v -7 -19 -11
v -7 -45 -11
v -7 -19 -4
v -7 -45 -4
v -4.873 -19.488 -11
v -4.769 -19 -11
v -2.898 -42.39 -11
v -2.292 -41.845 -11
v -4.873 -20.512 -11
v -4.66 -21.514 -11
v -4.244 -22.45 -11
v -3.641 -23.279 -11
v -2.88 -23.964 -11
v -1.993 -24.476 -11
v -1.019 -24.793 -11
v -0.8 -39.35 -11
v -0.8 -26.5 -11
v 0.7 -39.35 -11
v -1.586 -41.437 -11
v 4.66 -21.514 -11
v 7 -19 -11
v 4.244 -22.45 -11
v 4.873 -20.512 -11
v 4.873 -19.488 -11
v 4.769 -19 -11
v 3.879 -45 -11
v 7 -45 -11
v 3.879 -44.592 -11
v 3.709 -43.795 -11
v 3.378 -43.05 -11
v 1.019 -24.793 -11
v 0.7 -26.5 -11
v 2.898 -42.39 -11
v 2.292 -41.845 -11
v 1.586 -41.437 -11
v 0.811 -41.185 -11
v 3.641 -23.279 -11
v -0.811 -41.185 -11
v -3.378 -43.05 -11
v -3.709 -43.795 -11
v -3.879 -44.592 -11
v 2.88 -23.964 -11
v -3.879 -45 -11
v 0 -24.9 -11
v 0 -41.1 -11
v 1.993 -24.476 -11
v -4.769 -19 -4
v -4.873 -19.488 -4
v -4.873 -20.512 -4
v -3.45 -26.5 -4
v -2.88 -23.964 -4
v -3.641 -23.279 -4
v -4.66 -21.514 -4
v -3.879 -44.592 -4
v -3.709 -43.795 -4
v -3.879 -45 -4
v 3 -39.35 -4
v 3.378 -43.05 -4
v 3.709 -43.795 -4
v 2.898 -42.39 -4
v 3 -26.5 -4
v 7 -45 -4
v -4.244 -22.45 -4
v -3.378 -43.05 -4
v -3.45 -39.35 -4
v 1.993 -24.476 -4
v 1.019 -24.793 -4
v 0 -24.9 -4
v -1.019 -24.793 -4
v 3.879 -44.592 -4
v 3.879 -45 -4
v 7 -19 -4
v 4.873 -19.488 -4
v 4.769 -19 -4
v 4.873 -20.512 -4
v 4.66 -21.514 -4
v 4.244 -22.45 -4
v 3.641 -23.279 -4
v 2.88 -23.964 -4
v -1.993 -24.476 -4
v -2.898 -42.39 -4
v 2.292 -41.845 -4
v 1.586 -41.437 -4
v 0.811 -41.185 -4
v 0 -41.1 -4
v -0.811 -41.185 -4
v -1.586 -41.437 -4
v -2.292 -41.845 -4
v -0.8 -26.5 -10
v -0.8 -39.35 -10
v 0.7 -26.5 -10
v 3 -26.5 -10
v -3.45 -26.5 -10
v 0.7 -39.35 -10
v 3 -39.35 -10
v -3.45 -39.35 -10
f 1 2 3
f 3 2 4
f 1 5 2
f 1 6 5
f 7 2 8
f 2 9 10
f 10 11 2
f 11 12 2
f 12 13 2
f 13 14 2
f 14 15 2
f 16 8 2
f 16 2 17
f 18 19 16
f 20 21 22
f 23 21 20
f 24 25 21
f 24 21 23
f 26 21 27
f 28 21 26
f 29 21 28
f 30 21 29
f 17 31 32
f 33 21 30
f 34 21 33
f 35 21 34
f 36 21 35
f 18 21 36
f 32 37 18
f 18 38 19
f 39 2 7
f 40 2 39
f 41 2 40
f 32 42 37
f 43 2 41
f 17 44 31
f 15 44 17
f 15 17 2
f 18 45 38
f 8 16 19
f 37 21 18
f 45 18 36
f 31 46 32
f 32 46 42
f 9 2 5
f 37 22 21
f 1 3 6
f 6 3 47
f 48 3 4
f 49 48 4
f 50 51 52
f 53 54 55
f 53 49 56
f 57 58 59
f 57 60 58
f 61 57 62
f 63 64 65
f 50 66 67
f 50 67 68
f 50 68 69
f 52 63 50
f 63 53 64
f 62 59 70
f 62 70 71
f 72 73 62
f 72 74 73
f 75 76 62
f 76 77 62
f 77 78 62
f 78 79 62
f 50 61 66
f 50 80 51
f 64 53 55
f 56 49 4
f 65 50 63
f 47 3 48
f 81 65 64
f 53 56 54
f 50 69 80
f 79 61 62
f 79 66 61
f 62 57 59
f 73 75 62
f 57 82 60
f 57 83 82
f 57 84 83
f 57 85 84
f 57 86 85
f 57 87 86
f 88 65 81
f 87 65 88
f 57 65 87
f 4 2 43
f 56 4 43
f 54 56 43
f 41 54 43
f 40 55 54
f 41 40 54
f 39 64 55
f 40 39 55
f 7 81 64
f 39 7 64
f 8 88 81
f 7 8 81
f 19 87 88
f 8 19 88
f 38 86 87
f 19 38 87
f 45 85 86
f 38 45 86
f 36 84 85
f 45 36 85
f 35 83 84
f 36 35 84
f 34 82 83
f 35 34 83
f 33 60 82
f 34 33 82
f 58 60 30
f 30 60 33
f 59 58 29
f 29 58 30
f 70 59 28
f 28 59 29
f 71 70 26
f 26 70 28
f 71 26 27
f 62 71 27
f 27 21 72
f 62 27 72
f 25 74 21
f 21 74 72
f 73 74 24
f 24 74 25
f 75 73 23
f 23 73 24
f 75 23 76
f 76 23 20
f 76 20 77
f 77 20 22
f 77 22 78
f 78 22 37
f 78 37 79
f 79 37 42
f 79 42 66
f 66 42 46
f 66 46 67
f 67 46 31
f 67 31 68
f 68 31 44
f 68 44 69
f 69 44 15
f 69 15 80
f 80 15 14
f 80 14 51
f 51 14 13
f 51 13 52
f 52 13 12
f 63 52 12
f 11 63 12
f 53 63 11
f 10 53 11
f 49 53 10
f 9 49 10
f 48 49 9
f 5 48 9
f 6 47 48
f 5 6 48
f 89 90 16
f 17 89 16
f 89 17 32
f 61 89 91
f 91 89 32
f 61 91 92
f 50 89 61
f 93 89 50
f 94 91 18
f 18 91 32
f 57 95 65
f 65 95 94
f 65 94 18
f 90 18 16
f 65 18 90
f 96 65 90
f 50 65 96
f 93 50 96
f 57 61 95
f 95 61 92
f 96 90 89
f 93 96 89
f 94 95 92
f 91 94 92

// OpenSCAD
// Y axis endstop holder
// By Julio Galaron (@jgalaron)
// cc by-sa 4.0 International

module base(){ translate([-7,-11,19]) cube([14,7,26]); }

module rods(){	
	translate([-11,-11,0]){
		translate([11,0,20])  rotate([0,0,90])  rotate([0,90,0]) translate([0,0,-5]) cylinder(h = 20, r=4.9, $fn=30);
		translate([11,-4,45]) rotate([0,90,90]) cylinder(h = 20, r=3.9, $fn=30); 
	}
}

module endStop(){
	translate([-.8,-12,26.5])  cube([1.5,6.55,12.85]);
	translate([-3.45,-10,26.5])cube([6.45,6.55,12.85]);
}

//final part
rotate([90,0,0]) difference(){
	base();
	rods();
	endStop();	
}
